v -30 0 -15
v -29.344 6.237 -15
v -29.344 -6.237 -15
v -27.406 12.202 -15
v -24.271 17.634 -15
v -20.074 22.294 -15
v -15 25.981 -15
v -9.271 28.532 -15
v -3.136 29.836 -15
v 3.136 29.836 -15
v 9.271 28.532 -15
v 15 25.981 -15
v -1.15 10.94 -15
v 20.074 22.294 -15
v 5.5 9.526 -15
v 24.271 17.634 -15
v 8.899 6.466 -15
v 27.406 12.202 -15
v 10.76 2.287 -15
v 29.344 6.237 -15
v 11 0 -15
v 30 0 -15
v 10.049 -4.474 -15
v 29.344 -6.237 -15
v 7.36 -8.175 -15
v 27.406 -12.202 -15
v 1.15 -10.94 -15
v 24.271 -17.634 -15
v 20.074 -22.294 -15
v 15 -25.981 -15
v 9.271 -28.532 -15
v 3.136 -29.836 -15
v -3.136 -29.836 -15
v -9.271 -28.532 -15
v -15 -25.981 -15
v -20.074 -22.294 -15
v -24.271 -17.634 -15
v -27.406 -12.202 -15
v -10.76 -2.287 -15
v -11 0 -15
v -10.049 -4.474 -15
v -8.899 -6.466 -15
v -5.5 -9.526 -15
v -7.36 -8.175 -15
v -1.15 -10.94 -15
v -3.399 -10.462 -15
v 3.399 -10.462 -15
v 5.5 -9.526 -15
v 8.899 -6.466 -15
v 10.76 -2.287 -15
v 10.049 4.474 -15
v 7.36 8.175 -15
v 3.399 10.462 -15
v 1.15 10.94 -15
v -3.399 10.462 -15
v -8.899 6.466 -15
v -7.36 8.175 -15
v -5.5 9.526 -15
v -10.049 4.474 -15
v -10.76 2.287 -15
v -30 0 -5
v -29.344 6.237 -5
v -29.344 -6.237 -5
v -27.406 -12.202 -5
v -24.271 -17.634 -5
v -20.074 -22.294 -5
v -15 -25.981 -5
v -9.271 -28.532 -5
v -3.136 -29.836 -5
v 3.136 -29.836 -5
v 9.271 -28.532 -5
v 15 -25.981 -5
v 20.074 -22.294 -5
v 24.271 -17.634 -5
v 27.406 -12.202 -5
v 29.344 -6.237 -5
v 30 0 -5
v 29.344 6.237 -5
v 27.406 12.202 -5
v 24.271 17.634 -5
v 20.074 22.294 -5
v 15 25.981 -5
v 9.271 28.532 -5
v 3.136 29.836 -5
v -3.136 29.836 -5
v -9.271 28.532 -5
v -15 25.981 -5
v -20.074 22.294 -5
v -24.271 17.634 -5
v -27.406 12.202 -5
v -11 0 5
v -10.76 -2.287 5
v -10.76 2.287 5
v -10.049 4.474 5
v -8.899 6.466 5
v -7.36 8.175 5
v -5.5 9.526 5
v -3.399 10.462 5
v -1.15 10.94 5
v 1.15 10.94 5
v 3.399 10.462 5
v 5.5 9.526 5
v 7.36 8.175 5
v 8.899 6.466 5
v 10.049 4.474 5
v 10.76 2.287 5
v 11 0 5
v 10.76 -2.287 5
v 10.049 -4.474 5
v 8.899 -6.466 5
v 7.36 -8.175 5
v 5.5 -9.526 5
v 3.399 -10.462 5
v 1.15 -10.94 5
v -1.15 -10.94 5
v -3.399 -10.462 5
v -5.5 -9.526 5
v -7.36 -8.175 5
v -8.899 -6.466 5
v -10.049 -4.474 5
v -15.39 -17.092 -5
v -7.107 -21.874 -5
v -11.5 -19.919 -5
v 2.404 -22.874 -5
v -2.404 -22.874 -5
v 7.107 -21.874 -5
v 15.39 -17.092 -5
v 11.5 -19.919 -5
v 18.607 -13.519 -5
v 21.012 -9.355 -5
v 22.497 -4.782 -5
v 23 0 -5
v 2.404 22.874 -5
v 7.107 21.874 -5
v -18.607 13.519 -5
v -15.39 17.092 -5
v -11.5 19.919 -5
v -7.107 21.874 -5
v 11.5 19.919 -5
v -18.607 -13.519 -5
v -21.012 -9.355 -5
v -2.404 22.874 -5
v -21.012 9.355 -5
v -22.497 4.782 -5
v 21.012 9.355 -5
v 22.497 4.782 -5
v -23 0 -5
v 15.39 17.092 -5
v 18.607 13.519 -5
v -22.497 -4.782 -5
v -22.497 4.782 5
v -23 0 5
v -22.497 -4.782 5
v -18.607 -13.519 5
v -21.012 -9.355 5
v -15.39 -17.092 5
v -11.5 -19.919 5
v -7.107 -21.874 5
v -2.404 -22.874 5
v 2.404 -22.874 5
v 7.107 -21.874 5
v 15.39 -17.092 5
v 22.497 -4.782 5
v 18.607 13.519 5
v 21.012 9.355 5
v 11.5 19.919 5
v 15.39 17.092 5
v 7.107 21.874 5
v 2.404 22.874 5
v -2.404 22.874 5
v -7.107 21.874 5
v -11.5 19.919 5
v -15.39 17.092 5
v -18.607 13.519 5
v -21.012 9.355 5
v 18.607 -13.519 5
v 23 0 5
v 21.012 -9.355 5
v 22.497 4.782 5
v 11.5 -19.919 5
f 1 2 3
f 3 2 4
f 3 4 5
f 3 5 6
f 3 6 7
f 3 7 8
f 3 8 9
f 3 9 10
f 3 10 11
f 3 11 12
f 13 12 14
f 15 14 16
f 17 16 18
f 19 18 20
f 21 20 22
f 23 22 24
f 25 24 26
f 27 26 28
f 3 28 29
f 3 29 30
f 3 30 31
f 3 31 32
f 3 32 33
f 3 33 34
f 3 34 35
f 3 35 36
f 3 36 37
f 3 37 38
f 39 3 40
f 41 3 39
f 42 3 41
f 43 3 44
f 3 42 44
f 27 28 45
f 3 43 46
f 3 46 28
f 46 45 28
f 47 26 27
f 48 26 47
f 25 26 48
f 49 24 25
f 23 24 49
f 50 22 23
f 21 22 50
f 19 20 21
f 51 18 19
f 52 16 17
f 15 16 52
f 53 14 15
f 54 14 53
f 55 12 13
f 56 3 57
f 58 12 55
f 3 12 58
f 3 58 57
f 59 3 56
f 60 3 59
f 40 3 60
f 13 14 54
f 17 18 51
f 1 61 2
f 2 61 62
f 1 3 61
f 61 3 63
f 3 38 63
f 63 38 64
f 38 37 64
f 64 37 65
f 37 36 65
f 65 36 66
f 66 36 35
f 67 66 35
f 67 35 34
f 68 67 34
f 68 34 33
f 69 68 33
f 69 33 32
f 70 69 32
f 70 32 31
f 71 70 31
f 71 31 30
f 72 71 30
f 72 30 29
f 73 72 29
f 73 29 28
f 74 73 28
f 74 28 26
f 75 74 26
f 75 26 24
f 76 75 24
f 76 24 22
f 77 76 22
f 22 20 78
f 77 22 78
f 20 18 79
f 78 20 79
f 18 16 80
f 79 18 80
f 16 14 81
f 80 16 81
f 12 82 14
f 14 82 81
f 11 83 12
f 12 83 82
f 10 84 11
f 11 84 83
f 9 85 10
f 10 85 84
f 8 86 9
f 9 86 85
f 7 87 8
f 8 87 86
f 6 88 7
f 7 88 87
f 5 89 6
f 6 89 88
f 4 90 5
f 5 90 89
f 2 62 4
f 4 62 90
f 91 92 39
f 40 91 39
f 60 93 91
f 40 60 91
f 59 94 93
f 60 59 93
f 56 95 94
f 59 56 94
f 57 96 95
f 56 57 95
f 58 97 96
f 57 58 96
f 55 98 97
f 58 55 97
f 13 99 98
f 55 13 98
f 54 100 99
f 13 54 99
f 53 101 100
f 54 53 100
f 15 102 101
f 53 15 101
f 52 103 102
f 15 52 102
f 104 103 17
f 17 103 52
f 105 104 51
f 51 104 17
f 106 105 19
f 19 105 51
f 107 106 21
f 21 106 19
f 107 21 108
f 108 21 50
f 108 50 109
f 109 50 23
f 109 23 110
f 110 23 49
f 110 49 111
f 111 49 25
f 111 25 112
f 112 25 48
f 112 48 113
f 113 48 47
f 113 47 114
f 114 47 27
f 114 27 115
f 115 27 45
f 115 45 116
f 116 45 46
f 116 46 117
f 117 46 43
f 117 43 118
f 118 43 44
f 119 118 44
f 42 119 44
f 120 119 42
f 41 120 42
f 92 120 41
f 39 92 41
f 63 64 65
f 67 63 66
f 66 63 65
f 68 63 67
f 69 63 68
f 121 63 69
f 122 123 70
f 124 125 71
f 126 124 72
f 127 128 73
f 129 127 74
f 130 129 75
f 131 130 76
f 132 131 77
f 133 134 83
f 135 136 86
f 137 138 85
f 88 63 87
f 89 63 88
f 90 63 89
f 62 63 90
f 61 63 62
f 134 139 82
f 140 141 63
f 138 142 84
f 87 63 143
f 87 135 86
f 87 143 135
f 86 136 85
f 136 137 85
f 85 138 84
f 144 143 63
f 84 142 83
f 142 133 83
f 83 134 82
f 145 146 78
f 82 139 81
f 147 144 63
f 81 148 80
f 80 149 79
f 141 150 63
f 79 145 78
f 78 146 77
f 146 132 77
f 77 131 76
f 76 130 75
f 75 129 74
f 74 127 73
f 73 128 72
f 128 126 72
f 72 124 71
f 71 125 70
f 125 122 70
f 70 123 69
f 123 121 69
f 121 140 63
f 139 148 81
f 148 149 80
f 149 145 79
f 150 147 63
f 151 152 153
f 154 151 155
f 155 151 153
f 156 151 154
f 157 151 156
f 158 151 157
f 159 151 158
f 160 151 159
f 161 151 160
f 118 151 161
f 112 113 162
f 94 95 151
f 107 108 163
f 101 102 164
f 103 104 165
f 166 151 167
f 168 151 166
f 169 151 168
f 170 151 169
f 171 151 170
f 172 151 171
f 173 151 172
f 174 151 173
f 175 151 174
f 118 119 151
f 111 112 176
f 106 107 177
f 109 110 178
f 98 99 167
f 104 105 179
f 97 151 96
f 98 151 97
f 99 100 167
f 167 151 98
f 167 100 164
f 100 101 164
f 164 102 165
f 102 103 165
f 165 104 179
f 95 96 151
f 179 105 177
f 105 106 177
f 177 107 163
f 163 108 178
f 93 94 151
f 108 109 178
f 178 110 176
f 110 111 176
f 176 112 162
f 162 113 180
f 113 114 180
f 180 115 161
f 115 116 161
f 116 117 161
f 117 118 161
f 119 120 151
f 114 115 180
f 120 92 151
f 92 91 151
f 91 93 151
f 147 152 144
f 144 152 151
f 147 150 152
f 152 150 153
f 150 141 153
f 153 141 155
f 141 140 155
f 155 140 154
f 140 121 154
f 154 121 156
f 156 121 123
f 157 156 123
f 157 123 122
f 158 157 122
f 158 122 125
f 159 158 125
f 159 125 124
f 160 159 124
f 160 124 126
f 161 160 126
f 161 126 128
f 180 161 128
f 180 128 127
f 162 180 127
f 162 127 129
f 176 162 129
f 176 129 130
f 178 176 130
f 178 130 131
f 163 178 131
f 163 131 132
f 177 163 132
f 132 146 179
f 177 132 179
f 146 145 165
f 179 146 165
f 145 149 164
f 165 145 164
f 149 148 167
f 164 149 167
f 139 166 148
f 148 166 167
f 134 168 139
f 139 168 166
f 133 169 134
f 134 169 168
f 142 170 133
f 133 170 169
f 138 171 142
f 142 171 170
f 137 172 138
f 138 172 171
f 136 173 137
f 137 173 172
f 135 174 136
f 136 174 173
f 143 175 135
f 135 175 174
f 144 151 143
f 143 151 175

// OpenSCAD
difference()
{
	union ()
	{
		cylinder(10, 23, 23, center=true);
		translate ([0,0,-15])cylinder(10, 30, 30);
	}
	translate ([0,0,-15]) cylinder (20,11,11);
}
